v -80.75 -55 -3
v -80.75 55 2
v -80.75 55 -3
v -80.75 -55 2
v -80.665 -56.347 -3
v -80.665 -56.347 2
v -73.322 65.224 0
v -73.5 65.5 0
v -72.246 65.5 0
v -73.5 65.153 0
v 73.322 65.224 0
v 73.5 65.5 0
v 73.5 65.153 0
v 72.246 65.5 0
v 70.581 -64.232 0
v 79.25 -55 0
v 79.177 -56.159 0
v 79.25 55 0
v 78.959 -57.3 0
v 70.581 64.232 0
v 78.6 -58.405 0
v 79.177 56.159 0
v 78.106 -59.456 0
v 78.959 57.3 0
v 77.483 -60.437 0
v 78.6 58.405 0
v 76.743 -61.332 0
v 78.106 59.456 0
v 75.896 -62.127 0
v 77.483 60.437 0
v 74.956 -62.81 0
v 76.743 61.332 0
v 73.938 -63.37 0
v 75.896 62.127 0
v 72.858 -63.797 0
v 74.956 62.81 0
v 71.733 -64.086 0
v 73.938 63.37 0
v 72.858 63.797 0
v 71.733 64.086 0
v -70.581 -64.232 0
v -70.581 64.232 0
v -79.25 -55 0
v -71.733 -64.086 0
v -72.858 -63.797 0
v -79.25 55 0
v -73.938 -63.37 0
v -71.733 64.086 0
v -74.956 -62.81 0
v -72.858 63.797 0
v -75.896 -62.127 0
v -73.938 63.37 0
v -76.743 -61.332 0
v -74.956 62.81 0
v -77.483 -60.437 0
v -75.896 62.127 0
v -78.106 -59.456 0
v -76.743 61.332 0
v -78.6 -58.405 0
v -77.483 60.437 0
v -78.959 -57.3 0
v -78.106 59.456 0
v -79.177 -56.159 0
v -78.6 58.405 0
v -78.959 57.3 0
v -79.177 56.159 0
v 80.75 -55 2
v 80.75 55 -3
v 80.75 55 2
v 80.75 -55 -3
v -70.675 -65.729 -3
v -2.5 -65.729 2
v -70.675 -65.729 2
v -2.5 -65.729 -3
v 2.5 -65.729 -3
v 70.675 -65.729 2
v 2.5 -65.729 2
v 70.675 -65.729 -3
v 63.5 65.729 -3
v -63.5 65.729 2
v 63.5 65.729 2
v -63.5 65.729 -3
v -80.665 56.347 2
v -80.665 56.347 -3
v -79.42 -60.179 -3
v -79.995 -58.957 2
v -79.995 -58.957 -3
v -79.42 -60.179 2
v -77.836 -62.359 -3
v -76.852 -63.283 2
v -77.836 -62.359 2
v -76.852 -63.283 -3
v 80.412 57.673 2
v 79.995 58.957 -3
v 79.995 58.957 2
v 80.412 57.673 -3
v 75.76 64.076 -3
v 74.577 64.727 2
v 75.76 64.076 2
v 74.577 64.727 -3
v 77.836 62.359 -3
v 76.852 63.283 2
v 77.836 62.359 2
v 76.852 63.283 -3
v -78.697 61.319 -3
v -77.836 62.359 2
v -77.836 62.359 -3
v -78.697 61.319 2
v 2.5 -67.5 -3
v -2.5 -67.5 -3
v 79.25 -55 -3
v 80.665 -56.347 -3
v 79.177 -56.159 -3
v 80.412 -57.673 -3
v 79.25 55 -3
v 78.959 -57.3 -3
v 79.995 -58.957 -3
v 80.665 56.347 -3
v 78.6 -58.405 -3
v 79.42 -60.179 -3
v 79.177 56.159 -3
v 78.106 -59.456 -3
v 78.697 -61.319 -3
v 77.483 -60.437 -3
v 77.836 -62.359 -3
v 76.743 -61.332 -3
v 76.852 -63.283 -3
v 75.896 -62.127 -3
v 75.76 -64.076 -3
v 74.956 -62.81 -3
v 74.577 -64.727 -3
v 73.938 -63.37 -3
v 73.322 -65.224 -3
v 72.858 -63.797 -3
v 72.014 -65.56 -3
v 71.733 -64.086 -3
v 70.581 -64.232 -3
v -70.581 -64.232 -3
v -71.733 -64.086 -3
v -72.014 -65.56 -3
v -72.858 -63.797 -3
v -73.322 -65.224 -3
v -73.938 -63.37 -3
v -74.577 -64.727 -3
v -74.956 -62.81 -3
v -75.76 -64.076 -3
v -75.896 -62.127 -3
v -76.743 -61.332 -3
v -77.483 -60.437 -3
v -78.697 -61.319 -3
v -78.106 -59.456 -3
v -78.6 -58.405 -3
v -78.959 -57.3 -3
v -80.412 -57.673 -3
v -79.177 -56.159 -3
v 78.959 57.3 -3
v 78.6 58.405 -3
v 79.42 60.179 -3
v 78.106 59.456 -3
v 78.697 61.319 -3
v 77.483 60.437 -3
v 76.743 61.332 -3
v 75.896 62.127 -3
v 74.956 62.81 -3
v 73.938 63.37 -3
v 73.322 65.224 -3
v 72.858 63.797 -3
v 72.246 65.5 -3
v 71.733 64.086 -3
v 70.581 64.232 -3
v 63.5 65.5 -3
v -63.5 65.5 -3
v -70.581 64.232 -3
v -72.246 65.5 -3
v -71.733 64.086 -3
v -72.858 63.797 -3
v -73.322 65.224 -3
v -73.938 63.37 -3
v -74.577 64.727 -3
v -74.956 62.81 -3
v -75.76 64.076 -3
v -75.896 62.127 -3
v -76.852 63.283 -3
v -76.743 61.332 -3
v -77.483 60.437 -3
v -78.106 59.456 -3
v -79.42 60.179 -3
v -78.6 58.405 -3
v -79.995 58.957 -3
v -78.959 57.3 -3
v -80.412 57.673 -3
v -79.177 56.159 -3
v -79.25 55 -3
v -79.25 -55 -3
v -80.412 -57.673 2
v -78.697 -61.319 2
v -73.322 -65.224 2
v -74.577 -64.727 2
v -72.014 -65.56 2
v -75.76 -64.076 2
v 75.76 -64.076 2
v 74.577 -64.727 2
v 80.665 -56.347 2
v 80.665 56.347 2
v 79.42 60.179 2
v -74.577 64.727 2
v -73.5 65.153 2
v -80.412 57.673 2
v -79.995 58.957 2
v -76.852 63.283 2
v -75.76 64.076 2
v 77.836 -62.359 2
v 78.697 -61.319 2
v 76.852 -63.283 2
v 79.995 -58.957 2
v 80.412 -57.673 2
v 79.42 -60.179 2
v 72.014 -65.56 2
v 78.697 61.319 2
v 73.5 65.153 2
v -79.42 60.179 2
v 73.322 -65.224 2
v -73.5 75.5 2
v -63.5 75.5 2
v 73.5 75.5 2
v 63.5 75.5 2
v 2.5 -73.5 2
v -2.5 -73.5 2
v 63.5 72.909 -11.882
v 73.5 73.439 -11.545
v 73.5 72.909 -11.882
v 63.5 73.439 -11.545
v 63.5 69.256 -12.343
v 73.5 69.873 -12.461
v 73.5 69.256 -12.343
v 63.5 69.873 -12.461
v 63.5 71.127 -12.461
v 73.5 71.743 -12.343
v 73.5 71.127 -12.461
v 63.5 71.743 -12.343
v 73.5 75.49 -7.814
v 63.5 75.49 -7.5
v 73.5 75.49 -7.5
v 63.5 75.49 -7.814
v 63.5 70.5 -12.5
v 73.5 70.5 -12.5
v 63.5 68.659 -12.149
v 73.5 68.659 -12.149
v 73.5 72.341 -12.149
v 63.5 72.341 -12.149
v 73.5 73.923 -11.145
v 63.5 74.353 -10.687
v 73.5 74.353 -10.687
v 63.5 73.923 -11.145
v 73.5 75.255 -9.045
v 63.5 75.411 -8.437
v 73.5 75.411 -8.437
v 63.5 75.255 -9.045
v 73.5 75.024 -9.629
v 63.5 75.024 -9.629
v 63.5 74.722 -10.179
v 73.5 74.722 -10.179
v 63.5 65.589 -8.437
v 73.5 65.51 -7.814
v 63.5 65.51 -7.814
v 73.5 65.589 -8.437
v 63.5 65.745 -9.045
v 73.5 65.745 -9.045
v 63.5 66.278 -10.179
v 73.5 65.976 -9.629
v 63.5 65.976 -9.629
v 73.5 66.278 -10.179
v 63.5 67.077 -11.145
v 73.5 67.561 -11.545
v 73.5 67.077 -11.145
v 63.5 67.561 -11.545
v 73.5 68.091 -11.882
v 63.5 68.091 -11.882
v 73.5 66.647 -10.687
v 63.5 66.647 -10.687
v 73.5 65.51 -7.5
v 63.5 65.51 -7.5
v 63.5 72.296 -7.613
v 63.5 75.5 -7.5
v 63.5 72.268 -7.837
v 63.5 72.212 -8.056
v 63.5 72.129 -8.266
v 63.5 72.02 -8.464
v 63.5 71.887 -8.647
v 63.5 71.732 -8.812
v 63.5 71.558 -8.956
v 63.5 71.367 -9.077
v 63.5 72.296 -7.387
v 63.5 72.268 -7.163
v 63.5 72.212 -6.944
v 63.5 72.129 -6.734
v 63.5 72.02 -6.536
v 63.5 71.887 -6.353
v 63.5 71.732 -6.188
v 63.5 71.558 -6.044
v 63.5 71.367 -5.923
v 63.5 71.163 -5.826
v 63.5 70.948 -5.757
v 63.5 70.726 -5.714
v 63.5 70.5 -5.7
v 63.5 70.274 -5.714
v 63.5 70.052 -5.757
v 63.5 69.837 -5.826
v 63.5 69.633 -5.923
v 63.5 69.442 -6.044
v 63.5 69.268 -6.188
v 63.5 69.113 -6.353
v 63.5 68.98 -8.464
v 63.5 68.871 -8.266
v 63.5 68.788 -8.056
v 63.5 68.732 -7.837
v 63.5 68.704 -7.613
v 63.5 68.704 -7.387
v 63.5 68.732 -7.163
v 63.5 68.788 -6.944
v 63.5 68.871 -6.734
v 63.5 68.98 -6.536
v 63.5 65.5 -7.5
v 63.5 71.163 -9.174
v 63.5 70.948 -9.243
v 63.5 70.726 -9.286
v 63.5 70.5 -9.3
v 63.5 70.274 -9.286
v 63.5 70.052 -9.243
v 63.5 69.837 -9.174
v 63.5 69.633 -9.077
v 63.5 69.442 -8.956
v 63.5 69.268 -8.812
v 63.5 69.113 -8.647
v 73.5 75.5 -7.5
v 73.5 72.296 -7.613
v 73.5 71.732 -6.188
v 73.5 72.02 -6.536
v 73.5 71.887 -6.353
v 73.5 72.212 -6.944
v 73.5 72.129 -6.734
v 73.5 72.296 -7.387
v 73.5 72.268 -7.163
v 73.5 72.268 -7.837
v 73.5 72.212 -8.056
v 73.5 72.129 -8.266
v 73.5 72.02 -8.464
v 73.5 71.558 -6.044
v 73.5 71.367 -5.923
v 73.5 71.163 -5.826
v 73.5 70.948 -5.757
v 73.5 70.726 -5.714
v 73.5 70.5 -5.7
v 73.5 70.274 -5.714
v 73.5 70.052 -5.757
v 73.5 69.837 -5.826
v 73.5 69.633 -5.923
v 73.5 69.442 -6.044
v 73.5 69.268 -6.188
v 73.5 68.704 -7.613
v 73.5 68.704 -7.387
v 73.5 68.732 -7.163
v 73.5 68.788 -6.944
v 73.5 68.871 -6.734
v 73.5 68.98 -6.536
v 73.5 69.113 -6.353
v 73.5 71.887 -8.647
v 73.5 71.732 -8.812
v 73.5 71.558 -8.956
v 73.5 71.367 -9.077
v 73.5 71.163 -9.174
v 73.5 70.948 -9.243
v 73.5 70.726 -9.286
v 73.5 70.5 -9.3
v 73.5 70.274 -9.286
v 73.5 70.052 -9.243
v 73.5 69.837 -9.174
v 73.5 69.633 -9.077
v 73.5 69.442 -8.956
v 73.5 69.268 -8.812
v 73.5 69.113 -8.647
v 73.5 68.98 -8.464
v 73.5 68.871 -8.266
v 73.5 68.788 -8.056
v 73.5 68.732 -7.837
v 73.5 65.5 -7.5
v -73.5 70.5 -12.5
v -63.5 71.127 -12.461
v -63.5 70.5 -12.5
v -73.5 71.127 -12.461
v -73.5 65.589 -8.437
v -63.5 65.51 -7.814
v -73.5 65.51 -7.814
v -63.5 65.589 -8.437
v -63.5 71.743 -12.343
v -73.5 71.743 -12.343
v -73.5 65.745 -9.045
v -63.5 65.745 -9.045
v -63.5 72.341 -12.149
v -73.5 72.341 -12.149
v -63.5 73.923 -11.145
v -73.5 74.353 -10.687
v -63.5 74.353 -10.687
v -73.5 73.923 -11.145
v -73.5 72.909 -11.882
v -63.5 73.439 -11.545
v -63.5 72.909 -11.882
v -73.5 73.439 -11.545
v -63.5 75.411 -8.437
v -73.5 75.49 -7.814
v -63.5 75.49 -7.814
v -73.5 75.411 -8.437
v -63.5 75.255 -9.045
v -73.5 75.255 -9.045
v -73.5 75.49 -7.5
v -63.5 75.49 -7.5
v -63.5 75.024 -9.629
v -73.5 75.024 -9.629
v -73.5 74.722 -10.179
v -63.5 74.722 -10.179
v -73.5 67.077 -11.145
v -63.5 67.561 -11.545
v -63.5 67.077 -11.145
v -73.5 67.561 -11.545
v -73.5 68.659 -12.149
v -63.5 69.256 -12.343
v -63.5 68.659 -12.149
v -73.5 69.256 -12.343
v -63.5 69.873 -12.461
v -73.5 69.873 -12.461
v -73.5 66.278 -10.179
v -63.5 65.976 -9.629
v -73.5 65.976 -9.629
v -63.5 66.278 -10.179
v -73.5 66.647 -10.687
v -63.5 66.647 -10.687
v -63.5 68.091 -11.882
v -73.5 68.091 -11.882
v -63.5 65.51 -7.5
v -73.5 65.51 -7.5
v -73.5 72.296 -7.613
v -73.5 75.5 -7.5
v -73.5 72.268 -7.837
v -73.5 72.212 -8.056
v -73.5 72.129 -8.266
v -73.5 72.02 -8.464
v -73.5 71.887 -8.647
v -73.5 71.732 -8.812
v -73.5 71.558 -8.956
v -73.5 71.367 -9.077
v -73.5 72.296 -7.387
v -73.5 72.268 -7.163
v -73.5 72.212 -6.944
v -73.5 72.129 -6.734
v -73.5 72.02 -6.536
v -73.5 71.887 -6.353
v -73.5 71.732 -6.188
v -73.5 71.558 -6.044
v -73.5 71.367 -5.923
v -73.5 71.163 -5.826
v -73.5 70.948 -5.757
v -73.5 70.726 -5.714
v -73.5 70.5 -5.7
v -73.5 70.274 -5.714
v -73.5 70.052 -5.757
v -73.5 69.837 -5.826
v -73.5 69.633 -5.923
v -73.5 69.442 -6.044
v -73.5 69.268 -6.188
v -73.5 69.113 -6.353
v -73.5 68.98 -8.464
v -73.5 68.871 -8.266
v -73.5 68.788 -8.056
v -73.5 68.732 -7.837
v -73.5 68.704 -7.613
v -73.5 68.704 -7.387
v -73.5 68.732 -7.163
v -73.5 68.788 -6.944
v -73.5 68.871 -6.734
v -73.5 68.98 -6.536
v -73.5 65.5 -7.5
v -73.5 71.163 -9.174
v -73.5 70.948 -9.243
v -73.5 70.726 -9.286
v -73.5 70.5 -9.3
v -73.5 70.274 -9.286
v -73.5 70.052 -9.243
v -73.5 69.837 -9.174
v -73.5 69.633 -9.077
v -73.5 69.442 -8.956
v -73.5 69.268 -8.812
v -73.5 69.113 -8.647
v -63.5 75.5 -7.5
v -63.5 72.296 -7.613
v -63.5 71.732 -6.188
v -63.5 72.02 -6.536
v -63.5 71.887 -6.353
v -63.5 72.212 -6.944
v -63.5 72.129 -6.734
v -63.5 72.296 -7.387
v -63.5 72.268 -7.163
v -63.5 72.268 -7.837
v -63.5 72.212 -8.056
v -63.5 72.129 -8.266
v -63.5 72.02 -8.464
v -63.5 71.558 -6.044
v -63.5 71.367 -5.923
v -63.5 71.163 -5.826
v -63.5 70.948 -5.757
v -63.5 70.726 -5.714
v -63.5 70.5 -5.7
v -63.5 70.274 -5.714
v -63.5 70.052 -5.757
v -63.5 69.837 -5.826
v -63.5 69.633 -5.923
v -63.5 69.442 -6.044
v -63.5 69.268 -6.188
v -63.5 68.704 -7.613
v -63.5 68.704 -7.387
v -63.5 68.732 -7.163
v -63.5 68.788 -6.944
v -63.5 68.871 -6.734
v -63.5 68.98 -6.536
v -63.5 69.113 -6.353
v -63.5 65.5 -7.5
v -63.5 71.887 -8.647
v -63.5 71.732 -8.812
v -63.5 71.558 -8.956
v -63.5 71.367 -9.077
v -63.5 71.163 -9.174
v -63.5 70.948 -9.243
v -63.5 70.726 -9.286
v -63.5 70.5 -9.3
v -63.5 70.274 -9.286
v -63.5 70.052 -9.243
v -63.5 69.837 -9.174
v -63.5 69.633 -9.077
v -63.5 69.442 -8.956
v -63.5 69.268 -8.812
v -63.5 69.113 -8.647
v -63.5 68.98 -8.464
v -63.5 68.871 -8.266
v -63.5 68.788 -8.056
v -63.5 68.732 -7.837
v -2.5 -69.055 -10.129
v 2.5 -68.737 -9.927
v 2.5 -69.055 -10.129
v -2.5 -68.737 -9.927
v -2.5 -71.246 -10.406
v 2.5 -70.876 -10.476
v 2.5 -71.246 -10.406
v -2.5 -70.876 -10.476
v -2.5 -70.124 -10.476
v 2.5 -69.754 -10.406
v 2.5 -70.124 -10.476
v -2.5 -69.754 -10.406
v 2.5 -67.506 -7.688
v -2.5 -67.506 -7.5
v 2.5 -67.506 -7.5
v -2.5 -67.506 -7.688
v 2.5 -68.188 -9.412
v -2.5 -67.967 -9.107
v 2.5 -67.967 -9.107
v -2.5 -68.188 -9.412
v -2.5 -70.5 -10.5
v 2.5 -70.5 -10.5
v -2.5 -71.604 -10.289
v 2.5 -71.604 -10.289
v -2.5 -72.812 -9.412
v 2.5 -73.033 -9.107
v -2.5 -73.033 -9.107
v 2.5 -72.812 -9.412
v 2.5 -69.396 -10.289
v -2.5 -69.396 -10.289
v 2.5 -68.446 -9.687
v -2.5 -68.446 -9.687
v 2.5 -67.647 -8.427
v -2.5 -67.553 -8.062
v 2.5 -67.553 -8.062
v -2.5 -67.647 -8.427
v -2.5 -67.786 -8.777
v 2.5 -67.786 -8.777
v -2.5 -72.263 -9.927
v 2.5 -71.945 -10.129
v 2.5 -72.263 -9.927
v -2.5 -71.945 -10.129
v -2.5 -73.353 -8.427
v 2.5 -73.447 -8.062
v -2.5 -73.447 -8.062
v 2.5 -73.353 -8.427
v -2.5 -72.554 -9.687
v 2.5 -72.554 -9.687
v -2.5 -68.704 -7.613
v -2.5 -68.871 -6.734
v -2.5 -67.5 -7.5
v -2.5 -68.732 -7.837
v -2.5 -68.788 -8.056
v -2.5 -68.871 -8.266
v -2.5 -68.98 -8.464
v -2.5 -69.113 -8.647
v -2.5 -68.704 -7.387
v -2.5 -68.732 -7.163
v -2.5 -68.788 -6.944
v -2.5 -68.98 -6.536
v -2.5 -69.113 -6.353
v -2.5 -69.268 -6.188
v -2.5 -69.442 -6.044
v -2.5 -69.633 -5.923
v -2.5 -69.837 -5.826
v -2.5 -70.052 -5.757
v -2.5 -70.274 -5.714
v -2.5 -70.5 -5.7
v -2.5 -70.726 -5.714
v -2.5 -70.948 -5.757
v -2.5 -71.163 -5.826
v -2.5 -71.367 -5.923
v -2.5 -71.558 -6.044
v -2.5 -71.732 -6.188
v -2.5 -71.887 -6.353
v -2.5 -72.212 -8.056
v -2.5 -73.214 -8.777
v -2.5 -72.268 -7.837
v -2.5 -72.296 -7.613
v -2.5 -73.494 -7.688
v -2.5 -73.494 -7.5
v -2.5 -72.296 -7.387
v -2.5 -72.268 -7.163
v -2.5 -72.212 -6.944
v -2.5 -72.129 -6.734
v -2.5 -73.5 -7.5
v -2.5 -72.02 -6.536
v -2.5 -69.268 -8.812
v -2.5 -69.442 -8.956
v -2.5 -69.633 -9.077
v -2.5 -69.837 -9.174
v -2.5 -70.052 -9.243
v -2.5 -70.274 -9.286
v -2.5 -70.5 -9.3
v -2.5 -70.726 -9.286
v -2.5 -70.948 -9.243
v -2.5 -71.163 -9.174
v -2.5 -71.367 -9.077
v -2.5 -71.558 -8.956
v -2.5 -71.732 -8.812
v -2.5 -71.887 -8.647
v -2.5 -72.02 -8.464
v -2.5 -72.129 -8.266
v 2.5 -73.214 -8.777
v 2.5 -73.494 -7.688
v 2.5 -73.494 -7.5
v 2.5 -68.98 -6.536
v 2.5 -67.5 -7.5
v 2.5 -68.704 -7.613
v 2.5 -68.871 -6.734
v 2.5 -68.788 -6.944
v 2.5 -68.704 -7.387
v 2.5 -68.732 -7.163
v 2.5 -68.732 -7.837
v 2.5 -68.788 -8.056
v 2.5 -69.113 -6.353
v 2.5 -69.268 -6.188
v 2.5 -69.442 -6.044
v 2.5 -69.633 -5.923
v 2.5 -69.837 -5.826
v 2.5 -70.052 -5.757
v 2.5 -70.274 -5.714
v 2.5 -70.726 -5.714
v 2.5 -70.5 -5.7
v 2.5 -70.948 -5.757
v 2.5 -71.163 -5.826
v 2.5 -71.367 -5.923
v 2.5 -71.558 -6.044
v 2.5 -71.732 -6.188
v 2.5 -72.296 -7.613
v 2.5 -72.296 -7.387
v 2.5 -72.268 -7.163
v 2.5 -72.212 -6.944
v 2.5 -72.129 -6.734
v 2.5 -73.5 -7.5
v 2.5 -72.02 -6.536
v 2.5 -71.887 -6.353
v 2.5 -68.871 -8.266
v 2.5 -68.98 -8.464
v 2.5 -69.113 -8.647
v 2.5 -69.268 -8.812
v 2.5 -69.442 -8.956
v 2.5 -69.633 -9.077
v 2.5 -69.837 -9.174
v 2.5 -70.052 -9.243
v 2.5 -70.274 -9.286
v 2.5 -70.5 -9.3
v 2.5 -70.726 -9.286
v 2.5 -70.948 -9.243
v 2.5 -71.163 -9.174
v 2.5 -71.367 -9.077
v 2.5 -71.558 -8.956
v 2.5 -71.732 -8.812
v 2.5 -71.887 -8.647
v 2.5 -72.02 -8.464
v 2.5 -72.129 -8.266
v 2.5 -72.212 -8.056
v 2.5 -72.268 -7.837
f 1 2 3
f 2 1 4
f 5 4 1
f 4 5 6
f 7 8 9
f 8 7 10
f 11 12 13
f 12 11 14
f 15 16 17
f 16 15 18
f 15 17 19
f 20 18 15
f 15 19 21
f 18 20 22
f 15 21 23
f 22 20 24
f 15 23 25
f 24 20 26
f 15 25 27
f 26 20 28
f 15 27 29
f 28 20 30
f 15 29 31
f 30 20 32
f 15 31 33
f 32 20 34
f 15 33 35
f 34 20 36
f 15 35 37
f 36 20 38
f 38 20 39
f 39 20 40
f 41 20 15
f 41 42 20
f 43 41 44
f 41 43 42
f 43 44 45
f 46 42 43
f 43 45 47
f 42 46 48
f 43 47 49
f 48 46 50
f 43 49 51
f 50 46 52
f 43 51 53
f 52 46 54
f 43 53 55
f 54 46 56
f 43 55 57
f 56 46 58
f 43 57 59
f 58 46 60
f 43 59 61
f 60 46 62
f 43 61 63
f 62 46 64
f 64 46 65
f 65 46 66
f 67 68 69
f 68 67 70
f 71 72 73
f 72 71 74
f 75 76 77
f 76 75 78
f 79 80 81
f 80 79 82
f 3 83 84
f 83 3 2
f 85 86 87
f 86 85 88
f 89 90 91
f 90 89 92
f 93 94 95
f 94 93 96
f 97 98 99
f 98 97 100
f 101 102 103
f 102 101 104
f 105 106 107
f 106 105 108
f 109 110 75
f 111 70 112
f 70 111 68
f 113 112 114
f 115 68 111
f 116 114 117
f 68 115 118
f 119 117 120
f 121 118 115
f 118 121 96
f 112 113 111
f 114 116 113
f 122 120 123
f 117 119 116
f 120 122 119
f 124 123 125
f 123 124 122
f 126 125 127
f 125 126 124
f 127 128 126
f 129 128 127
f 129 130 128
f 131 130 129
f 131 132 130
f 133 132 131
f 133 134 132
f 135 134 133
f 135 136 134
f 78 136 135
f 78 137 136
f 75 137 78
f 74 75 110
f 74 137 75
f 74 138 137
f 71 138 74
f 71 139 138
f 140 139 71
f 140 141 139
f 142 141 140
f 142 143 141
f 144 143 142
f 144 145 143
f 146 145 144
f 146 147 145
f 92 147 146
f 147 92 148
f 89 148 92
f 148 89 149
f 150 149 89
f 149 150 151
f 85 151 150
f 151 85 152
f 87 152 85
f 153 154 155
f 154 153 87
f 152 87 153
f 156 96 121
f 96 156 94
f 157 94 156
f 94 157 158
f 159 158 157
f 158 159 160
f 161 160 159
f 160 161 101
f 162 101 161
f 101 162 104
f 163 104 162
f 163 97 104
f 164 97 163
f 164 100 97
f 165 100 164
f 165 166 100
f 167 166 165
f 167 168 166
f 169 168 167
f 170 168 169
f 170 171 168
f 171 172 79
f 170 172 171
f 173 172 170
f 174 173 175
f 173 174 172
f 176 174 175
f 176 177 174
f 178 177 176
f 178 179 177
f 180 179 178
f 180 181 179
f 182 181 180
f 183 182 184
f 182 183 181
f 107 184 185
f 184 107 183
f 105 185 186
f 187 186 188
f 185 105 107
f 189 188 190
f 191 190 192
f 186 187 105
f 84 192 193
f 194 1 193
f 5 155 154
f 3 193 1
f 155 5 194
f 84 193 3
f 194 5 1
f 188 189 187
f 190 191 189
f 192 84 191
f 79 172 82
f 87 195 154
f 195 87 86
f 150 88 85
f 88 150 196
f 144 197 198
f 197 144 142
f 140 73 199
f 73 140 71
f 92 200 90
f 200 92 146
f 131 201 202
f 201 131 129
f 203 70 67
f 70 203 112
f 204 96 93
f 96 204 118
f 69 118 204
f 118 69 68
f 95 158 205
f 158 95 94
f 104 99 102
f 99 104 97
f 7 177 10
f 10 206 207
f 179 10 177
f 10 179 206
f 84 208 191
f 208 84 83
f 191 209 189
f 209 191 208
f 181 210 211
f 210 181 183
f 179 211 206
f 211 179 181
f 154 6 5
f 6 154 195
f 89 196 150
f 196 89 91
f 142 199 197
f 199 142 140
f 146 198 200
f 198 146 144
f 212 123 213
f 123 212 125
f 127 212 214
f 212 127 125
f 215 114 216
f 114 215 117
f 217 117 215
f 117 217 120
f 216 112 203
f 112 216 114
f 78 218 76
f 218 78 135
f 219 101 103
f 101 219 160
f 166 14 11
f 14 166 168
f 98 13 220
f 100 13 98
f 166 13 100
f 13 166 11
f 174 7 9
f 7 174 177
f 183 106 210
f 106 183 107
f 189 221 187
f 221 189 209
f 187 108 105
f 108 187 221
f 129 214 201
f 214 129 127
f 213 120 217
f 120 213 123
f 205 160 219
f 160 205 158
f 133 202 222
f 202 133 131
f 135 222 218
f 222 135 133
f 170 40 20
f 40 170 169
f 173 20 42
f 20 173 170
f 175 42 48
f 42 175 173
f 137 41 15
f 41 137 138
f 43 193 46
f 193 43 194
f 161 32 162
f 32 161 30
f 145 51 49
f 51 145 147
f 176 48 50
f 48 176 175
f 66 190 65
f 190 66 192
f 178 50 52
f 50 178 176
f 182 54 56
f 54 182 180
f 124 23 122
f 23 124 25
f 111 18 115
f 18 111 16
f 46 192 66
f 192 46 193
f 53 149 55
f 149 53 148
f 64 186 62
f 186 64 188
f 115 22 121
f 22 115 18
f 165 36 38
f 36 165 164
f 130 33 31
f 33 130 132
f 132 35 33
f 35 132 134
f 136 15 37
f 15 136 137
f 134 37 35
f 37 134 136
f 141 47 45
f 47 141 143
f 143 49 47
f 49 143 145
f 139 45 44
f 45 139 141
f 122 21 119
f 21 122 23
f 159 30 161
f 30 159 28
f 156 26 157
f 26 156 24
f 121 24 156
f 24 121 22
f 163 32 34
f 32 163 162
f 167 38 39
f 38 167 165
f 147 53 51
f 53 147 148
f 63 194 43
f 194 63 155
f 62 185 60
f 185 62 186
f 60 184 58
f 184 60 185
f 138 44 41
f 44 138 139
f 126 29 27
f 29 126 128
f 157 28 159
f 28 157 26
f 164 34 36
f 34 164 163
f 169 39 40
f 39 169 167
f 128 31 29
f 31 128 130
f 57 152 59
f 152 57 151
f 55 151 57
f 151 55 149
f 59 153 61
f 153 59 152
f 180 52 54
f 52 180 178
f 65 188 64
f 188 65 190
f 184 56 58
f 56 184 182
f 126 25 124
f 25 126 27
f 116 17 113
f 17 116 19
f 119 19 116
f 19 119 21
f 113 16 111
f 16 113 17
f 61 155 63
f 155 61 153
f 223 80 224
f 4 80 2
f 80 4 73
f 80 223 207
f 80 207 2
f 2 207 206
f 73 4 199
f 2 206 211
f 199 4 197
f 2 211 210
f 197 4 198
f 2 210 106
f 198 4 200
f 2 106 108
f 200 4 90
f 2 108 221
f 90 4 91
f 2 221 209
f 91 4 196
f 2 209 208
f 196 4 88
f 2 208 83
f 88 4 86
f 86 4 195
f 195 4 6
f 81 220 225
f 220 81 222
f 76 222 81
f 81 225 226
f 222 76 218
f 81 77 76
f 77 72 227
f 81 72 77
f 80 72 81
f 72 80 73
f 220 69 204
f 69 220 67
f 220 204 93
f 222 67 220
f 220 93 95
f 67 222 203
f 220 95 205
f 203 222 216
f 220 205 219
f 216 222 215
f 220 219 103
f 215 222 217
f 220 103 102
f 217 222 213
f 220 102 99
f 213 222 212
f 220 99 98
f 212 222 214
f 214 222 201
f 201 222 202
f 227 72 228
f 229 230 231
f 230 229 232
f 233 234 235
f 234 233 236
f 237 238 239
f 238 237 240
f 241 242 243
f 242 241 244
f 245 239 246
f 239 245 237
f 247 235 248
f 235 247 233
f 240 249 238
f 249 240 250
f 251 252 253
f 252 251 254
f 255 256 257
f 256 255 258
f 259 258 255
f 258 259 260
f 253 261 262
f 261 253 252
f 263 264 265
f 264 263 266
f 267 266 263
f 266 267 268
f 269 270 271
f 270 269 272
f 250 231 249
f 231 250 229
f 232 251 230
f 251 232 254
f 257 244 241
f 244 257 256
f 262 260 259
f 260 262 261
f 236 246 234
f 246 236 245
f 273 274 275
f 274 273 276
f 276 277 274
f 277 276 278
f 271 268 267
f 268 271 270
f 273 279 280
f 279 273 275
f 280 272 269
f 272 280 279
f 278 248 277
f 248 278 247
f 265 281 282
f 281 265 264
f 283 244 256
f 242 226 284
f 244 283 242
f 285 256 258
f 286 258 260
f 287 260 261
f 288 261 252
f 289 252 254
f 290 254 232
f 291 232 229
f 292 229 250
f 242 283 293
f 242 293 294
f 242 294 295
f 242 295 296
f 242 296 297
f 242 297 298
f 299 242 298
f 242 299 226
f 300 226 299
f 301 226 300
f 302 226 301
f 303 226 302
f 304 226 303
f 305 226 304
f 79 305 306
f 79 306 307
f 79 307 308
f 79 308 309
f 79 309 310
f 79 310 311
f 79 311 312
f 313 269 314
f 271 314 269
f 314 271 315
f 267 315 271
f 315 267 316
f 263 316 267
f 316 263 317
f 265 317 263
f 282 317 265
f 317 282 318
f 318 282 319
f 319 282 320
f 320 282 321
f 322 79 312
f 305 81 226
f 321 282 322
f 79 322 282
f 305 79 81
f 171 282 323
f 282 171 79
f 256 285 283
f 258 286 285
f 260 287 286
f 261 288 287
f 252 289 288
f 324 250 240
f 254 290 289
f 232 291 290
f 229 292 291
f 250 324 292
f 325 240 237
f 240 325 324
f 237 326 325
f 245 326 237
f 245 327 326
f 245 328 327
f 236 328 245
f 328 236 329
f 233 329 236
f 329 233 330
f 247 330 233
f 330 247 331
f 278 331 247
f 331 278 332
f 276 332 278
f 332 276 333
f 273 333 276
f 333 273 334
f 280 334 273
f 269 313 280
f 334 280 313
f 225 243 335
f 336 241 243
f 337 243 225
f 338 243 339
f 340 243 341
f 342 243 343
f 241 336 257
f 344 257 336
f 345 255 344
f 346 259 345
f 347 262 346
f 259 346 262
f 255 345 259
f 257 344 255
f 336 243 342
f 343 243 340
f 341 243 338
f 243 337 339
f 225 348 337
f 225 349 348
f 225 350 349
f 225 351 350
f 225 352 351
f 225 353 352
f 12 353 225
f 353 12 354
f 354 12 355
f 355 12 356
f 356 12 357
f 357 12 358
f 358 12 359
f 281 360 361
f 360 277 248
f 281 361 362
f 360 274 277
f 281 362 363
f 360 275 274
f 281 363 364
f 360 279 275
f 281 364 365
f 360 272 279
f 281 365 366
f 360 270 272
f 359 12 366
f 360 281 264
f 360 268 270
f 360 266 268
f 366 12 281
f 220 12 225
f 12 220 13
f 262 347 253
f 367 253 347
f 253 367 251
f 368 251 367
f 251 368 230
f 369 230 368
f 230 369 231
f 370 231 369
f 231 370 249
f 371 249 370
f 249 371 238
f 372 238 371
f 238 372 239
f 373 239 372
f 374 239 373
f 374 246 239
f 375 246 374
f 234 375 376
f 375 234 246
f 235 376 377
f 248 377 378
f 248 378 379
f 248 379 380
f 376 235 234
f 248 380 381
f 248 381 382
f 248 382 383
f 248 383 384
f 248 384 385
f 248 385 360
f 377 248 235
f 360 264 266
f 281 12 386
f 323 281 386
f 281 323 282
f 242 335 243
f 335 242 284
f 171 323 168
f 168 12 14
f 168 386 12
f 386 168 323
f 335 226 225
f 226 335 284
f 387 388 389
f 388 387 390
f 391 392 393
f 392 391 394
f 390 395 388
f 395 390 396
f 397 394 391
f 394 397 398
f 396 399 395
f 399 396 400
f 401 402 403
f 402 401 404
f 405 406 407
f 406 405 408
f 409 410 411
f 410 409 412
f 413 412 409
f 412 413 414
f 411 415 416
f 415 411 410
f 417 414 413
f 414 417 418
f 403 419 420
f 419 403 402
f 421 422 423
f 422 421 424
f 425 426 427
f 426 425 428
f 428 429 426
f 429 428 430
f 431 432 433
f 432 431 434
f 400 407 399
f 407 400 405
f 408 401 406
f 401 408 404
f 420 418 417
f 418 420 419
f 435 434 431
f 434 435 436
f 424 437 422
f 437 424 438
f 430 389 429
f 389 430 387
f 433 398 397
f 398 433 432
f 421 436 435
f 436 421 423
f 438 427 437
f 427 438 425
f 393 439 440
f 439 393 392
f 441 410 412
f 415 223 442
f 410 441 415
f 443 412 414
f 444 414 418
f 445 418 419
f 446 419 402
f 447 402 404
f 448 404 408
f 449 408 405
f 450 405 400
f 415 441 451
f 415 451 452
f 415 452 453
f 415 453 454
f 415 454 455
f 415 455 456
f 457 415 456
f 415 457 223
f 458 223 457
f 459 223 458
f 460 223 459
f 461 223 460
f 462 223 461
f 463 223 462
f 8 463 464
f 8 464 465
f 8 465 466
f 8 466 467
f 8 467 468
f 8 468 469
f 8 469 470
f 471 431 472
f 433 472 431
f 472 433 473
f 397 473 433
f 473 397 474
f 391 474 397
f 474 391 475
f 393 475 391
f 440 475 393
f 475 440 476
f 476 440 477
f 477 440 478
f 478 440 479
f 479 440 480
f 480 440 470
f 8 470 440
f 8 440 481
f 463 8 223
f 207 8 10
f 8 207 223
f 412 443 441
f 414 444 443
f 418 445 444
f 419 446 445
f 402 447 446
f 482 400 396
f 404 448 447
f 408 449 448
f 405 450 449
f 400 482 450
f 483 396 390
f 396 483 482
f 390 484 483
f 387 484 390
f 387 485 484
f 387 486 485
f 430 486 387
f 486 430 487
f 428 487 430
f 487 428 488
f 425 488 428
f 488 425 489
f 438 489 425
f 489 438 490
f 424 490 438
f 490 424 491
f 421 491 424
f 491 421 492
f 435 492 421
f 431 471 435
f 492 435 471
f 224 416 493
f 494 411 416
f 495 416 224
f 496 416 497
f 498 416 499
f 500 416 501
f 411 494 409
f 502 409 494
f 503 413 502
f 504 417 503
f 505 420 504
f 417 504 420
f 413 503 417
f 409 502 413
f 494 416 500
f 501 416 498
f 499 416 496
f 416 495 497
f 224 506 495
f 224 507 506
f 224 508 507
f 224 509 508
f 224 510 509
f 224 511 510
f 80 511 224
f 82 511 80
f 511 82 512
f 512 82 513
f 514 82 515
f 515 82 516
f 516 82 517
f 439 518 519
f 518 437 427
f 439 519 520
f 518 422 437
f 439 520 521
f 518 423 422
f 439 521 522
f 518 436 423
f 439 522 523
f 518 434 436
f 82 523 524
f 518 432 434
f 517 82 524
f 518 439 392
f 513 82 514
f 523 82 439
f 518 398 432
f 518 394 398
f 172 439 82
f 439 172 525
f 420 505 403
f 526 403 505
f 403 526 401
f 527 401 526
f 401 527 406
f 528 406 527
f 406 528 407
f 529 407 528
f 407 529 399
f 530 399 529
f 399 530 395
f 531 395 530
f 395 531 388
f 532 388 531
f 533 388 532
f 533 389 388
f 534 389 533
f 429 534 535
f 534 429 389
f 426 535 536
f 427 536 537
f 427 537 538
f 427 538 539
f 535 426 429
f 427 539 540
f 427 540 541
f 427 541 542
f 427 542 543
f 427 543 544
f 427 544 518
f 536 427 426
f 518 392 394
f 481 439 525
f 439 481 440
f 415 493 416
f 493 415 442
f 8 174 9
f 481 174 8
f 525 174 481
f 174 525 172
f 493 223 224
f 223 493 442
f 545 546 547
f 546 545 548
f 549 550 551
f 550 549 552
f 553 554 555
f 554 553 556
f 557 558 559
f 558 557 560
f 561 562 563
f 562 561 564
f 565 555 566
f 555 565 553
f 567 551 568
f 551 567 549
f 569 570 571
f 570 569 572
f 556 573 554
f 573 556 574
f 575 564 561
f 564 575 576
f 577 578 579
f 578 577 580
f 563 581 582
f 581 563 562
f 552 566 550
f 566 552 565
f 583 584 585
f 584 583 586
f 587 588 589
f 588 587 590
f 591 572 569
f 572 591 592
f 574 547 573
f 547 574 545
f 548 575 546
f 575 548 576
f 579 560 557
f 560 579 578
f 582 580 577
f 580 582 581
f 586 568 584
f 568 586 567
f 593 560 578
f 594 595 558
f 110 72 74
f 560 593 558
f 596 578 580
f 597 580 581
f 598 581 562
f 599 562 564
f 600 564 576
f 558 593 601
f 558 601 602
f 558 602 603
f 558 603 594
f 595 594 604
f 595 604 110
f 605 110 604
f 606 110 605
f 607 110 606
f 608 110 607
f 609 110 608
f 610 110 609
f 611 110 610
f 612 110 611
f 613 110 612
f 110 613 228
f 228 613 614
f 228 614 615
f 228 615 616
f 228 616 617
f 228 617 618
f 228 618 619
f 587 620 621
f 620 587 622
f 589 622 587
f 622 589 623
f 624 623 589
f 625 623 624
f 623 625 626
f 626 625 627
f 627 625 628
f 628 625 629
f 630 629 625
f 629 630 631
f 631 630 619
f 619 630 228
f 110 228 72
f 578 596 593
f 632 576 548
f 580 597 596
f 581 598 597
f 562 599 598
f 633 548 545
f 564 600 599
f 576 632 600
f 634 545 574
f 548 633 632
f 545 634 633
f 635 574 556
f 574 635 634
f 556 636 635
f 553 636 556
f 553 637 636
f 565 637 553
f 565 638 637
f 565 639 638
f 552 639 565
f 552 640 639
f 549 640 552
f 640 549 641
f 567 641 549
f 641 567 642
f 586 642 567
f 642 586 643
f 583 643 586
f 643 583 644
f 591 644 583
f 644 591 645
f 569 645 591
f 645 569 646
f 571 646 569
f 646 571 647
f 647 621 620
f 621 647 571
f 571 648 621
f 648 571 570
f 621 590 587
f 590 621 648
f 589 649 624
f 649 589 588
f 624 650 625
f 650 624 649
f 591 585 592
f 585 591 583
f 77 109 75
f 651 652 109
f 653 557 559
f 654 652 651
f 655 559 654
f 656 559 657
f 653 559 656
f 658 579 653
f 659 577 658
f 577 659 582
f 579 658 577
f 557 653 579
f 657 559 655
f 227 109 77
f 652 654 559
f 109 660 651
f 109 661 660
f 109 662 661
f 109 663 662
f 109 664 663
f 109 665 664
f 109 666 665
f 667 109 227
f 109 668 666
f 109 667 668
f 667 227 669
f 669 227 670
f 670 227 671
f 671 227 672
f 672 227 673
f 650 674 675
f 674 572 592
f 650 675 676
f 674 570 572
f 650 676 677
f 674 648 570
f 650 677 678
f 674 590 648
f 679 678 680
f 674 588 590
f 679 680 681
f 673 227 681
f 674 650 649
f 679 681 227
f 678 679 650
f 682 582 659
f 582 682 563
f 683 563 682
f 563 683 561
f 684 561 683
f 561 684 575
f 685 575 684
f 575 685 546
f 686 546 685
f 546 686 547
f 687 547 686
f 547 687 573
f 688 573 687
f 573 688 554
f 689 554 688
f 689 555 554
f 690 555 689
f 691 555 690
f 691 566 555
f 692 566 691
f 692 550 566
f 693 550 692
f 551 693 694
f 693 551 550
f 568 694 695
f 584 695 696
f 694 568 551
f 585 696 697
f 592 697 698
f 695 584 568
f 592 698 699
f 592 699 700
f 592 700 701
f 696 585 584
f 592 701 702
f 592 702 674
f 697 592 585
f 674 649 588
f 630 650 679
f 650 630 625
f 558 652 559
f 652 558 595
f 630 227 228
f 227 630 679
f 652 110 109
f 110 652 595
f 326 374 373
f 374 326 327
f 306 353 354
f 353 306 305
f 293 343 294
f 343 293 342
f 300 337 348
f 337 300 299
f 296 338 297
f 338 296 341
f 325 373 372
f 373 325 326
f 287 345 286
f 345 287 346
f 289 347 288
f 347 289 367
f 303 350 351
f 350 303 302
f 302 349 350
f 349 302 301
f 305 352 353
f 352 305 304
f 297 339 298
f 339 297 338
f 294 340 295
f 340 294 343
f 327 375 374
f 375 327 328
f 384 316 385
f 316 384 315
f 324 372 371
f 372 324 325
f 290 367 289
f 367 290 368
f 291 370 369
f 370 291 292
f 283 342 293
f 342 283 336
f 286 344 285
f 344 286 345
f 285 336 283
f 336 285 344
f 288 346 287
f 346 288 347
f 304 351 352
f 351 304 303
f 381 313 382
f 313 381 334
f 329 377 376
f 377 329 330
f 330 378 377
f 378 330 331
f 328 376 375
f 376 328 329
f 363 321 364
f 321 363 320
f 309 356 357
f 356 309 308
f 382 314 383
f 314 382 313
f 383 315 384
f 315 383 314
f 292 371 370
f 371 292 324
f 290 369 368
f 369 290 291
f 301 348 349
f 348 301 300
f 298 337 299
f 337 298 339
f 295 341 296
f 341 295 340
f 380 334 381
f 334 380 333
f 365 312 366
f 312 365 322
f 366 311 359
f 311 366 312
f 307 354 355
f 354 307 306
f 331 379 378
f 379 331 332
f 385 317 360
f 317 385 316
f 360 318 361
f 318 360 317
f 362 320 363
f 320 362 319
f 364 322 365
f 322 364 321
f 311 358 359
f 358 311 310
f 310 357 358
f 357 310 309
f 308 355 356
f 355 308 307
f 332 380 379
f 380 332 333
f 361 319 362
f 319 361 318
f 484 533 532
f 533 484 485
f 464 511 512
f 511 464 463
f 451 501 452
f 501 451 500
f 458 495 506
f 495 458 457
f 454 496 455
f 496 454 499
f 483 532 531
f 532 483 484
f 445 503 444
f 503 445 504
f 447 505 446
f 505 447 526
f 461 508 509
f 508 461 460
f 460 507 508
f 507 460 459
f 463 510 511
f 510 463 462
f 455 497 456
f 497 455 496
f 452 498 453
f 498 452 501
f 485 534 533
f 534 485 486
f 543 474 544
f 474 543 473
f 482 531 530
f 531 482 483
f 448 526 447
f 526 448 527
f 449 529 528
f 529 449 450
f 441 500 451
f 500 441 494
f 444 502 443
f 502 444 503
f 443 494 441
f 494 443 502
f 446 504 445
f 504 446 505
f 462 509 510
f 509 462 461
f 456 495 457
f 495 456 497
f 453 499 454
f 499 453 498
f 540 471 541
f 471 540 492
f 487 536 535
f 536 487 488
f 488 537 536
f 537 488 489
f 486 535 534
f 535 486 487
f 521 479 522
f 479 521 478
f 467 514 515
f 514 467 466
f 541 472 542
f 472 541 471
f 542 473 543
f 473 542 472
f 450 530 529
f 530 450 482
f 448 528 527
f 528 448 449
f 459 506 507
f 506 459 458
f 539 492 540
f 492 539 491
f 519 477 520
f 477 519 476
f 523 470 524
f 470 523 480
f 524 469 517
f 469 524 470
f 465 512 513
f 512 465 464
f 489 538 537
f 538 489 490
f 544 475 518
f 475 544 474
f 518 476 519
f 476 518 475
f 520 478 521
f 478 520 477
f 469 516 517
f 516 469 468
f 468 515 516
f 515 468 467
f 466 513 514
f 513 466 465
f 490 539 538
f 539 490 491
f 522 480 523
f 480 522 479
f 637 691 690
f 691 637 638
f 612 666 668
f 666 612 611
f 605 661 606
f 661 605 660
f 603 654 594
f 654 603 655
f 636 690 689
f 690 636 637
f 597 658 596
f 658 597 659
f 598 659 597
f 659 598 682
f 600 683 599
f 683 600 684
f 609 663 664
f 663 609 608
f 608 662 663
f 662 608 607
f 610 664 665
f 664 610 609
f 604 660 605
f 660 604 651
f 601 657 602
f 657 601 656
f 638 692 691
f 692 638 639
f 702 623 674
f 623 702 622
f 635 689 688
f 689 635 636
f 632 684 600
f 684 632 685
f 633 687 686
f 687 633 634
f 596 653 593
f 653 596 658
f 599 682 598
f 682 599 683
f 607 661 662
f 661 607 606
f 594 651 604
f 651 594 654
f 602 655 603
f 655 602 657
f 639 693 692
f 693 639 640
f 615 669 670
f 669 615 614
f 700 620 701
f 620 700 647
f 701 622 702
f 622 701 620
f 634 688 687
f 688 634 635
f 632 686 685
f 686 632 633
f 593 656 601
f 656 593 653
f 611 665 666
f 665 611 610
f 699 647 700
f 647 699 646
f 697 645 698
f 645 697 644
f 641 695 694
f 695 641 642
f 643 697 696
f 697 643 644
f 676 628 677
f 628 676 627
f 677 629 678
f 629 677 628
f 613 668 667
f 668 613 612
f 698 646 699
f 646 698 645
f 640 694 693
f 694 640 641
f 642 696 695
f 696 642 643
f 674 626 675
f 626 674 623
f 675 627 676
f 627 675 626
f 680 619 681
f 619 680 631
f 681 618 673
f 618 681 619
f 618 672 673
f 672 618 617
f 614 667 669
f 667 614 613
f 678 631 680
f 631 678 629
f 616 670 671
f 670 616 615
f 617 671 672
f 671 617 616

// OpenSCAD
$fn = 50;


difference() {
	union() {
		translate(v = [0, 0, -3]) {
			rotate(a = [0, 0, 0]) {
				difference() {
					union() {
						hull() {
							translate(v = [-70.0000000000, 55.0000000000, 0]) {
								cylinder(h = 3, r = 10.7500000000);
							}
							translate(v = [70.0000000000, 55.0000000000, 0]) {
								cylinder(h = 3, r = 10.7500000000);
							}
							translate(v = [-70.0000000000, -55.0000000000, 0]) {
								cylinder(h = 3, r = 10.7500000000);
							}
							translate(v = [70.0000000000, -55.0000000000, 0]) {
								cylinder(h = 3, r = 10.7500000000);
							}
						}
					}
					union() {
						hull() {
							translate(v = [-70.0000000000, 55.0000000000, 0]) {
								cylinder(h = 3, r = 9.2500000000);
							}
							translate(v = [70.0000000000, 55.0000000000, 0]) {
								cylinder(h = 3, r = 9.2500000000);
							}
							translate(v = [-70.0000000000, -55.0000000000, 0]) {
								cylinder(h = 3, r = 9.2500000000);
							}
							translate(v = [70.0000000000, -55.0000000000, 0]) {
								cylinder(h = 3, r = 9.2500000000);
							}
						}
					}
				}
			}
		}
		hull() {
			translate(v = [-70.0000000000, 55.0000000000, 0]) {
				cylinder(h = 2, r = 10.7500000000);
			}
			translate(v = [70.0000000000, 55.0000000000, 0]) {
				cylinder(h = 2, r = 10.7500000000);
			}
			translate(v = [-70.0000000000, -55.0000000000, 0]) {
				cylinder(h = 2, r = 10.7500000000);
			}
			translate(v = [70.0000000000, -55.0000000000, 0]) {
				cylinder(h = 2, r = 10.7500000000);
			}
		}
		translate(v = [63.5000000000, 70.5000000000, -7.5000000000]) {
			rotate(a = [0, 90, 0]) {
				cylinder(h = 10, r = 5.0000000000);
			}
		}
		translate(v = [63.5000000000, 65.5000000000, -7.5000000000]) {
			cube(size = [10, 10, 7.5000000000]);
		}
		translate(v = [63.5000000000, 48.0000000000, 0.0000000000]) {
			cube(size = [10, 27.5000000000, 2]);
		}
		translate(v = [-73.5000000000, 70.5000000000, -7.5000000000]) {
			rotate(a = [0, 90, 0]) {
				cylinder(h = 10, r = 5.0000000000);
			}
		}
		translate(v = [-73.5000000000, 65.5000000000, -7.5000000000]) {
			cube(size = [10, 10, 7.5000000000]);
		}
		translate(v = [-73.5000000000, 48.0000000000, 0.0000000000]) {
			cube(size = [10, 27.5000000000, 2]);
		}
		translate(v = [-2.5000000000, -70.5000000000, -7.5000000000]) {
			rotate(a = [0, 90, 0]) {
				cylinder(h = 5, r = 3.0000000000);
			}
		}
		translate(v = [-2.5000000000, -73.5000000000, -7.5000000000]) {
			cube(size = [5, 6, 7.5000000000]);
		}
		translate(v = [-2.5000000000, -73.5000000000, -3.0000000000]) {
			cube(size = [5, 38.2500000000, 5]);
		}
	}
	union() {
		translate(v = [0, 0, -8]) {
			hull() {
				translate(v = [-70.0000000000, 55.0000000000, 0]) {
					cylinder(h = 8, r = 9.2500000000);
				}
				translate(v = [70.0000000000, 55.0000000000, 0]) {
					cylinder(h = 8, r = 9.2500000000);
				}
				translate(v = [-70.0000000000, -55.0000000000, 0]) {
					cylinder(h = 8, r = 9.2500000000);
				}
				translate(v = [70.0000000000, -55.0000000000, 0]) {
					cylinder(h = 8, r = 9.2500000000);
				}
			}
		}
		translate(v = [63.5000000000, 70.5000000000, -7.5000000000]) {
			rotate(a = [0, 90, 0]) {
				cylinder(h = 10, r = 1.8000000000);
			}
		}
		translate(v = [-73.5000000000, 70.5000000000, -7.5000000000]) {
			rotate(a = [0, 90, 0]) {
				cylinder(h = 10, r = 1.8000000000);
			}
		}
		translate(v = [-5.0000000000, -70.5000000000, -7.5000000000]) {
			rotate(a = [0, 90, 0]) {
				cylinder(h = 10, r = 1.8000000000);
			}
		}
	}
}
